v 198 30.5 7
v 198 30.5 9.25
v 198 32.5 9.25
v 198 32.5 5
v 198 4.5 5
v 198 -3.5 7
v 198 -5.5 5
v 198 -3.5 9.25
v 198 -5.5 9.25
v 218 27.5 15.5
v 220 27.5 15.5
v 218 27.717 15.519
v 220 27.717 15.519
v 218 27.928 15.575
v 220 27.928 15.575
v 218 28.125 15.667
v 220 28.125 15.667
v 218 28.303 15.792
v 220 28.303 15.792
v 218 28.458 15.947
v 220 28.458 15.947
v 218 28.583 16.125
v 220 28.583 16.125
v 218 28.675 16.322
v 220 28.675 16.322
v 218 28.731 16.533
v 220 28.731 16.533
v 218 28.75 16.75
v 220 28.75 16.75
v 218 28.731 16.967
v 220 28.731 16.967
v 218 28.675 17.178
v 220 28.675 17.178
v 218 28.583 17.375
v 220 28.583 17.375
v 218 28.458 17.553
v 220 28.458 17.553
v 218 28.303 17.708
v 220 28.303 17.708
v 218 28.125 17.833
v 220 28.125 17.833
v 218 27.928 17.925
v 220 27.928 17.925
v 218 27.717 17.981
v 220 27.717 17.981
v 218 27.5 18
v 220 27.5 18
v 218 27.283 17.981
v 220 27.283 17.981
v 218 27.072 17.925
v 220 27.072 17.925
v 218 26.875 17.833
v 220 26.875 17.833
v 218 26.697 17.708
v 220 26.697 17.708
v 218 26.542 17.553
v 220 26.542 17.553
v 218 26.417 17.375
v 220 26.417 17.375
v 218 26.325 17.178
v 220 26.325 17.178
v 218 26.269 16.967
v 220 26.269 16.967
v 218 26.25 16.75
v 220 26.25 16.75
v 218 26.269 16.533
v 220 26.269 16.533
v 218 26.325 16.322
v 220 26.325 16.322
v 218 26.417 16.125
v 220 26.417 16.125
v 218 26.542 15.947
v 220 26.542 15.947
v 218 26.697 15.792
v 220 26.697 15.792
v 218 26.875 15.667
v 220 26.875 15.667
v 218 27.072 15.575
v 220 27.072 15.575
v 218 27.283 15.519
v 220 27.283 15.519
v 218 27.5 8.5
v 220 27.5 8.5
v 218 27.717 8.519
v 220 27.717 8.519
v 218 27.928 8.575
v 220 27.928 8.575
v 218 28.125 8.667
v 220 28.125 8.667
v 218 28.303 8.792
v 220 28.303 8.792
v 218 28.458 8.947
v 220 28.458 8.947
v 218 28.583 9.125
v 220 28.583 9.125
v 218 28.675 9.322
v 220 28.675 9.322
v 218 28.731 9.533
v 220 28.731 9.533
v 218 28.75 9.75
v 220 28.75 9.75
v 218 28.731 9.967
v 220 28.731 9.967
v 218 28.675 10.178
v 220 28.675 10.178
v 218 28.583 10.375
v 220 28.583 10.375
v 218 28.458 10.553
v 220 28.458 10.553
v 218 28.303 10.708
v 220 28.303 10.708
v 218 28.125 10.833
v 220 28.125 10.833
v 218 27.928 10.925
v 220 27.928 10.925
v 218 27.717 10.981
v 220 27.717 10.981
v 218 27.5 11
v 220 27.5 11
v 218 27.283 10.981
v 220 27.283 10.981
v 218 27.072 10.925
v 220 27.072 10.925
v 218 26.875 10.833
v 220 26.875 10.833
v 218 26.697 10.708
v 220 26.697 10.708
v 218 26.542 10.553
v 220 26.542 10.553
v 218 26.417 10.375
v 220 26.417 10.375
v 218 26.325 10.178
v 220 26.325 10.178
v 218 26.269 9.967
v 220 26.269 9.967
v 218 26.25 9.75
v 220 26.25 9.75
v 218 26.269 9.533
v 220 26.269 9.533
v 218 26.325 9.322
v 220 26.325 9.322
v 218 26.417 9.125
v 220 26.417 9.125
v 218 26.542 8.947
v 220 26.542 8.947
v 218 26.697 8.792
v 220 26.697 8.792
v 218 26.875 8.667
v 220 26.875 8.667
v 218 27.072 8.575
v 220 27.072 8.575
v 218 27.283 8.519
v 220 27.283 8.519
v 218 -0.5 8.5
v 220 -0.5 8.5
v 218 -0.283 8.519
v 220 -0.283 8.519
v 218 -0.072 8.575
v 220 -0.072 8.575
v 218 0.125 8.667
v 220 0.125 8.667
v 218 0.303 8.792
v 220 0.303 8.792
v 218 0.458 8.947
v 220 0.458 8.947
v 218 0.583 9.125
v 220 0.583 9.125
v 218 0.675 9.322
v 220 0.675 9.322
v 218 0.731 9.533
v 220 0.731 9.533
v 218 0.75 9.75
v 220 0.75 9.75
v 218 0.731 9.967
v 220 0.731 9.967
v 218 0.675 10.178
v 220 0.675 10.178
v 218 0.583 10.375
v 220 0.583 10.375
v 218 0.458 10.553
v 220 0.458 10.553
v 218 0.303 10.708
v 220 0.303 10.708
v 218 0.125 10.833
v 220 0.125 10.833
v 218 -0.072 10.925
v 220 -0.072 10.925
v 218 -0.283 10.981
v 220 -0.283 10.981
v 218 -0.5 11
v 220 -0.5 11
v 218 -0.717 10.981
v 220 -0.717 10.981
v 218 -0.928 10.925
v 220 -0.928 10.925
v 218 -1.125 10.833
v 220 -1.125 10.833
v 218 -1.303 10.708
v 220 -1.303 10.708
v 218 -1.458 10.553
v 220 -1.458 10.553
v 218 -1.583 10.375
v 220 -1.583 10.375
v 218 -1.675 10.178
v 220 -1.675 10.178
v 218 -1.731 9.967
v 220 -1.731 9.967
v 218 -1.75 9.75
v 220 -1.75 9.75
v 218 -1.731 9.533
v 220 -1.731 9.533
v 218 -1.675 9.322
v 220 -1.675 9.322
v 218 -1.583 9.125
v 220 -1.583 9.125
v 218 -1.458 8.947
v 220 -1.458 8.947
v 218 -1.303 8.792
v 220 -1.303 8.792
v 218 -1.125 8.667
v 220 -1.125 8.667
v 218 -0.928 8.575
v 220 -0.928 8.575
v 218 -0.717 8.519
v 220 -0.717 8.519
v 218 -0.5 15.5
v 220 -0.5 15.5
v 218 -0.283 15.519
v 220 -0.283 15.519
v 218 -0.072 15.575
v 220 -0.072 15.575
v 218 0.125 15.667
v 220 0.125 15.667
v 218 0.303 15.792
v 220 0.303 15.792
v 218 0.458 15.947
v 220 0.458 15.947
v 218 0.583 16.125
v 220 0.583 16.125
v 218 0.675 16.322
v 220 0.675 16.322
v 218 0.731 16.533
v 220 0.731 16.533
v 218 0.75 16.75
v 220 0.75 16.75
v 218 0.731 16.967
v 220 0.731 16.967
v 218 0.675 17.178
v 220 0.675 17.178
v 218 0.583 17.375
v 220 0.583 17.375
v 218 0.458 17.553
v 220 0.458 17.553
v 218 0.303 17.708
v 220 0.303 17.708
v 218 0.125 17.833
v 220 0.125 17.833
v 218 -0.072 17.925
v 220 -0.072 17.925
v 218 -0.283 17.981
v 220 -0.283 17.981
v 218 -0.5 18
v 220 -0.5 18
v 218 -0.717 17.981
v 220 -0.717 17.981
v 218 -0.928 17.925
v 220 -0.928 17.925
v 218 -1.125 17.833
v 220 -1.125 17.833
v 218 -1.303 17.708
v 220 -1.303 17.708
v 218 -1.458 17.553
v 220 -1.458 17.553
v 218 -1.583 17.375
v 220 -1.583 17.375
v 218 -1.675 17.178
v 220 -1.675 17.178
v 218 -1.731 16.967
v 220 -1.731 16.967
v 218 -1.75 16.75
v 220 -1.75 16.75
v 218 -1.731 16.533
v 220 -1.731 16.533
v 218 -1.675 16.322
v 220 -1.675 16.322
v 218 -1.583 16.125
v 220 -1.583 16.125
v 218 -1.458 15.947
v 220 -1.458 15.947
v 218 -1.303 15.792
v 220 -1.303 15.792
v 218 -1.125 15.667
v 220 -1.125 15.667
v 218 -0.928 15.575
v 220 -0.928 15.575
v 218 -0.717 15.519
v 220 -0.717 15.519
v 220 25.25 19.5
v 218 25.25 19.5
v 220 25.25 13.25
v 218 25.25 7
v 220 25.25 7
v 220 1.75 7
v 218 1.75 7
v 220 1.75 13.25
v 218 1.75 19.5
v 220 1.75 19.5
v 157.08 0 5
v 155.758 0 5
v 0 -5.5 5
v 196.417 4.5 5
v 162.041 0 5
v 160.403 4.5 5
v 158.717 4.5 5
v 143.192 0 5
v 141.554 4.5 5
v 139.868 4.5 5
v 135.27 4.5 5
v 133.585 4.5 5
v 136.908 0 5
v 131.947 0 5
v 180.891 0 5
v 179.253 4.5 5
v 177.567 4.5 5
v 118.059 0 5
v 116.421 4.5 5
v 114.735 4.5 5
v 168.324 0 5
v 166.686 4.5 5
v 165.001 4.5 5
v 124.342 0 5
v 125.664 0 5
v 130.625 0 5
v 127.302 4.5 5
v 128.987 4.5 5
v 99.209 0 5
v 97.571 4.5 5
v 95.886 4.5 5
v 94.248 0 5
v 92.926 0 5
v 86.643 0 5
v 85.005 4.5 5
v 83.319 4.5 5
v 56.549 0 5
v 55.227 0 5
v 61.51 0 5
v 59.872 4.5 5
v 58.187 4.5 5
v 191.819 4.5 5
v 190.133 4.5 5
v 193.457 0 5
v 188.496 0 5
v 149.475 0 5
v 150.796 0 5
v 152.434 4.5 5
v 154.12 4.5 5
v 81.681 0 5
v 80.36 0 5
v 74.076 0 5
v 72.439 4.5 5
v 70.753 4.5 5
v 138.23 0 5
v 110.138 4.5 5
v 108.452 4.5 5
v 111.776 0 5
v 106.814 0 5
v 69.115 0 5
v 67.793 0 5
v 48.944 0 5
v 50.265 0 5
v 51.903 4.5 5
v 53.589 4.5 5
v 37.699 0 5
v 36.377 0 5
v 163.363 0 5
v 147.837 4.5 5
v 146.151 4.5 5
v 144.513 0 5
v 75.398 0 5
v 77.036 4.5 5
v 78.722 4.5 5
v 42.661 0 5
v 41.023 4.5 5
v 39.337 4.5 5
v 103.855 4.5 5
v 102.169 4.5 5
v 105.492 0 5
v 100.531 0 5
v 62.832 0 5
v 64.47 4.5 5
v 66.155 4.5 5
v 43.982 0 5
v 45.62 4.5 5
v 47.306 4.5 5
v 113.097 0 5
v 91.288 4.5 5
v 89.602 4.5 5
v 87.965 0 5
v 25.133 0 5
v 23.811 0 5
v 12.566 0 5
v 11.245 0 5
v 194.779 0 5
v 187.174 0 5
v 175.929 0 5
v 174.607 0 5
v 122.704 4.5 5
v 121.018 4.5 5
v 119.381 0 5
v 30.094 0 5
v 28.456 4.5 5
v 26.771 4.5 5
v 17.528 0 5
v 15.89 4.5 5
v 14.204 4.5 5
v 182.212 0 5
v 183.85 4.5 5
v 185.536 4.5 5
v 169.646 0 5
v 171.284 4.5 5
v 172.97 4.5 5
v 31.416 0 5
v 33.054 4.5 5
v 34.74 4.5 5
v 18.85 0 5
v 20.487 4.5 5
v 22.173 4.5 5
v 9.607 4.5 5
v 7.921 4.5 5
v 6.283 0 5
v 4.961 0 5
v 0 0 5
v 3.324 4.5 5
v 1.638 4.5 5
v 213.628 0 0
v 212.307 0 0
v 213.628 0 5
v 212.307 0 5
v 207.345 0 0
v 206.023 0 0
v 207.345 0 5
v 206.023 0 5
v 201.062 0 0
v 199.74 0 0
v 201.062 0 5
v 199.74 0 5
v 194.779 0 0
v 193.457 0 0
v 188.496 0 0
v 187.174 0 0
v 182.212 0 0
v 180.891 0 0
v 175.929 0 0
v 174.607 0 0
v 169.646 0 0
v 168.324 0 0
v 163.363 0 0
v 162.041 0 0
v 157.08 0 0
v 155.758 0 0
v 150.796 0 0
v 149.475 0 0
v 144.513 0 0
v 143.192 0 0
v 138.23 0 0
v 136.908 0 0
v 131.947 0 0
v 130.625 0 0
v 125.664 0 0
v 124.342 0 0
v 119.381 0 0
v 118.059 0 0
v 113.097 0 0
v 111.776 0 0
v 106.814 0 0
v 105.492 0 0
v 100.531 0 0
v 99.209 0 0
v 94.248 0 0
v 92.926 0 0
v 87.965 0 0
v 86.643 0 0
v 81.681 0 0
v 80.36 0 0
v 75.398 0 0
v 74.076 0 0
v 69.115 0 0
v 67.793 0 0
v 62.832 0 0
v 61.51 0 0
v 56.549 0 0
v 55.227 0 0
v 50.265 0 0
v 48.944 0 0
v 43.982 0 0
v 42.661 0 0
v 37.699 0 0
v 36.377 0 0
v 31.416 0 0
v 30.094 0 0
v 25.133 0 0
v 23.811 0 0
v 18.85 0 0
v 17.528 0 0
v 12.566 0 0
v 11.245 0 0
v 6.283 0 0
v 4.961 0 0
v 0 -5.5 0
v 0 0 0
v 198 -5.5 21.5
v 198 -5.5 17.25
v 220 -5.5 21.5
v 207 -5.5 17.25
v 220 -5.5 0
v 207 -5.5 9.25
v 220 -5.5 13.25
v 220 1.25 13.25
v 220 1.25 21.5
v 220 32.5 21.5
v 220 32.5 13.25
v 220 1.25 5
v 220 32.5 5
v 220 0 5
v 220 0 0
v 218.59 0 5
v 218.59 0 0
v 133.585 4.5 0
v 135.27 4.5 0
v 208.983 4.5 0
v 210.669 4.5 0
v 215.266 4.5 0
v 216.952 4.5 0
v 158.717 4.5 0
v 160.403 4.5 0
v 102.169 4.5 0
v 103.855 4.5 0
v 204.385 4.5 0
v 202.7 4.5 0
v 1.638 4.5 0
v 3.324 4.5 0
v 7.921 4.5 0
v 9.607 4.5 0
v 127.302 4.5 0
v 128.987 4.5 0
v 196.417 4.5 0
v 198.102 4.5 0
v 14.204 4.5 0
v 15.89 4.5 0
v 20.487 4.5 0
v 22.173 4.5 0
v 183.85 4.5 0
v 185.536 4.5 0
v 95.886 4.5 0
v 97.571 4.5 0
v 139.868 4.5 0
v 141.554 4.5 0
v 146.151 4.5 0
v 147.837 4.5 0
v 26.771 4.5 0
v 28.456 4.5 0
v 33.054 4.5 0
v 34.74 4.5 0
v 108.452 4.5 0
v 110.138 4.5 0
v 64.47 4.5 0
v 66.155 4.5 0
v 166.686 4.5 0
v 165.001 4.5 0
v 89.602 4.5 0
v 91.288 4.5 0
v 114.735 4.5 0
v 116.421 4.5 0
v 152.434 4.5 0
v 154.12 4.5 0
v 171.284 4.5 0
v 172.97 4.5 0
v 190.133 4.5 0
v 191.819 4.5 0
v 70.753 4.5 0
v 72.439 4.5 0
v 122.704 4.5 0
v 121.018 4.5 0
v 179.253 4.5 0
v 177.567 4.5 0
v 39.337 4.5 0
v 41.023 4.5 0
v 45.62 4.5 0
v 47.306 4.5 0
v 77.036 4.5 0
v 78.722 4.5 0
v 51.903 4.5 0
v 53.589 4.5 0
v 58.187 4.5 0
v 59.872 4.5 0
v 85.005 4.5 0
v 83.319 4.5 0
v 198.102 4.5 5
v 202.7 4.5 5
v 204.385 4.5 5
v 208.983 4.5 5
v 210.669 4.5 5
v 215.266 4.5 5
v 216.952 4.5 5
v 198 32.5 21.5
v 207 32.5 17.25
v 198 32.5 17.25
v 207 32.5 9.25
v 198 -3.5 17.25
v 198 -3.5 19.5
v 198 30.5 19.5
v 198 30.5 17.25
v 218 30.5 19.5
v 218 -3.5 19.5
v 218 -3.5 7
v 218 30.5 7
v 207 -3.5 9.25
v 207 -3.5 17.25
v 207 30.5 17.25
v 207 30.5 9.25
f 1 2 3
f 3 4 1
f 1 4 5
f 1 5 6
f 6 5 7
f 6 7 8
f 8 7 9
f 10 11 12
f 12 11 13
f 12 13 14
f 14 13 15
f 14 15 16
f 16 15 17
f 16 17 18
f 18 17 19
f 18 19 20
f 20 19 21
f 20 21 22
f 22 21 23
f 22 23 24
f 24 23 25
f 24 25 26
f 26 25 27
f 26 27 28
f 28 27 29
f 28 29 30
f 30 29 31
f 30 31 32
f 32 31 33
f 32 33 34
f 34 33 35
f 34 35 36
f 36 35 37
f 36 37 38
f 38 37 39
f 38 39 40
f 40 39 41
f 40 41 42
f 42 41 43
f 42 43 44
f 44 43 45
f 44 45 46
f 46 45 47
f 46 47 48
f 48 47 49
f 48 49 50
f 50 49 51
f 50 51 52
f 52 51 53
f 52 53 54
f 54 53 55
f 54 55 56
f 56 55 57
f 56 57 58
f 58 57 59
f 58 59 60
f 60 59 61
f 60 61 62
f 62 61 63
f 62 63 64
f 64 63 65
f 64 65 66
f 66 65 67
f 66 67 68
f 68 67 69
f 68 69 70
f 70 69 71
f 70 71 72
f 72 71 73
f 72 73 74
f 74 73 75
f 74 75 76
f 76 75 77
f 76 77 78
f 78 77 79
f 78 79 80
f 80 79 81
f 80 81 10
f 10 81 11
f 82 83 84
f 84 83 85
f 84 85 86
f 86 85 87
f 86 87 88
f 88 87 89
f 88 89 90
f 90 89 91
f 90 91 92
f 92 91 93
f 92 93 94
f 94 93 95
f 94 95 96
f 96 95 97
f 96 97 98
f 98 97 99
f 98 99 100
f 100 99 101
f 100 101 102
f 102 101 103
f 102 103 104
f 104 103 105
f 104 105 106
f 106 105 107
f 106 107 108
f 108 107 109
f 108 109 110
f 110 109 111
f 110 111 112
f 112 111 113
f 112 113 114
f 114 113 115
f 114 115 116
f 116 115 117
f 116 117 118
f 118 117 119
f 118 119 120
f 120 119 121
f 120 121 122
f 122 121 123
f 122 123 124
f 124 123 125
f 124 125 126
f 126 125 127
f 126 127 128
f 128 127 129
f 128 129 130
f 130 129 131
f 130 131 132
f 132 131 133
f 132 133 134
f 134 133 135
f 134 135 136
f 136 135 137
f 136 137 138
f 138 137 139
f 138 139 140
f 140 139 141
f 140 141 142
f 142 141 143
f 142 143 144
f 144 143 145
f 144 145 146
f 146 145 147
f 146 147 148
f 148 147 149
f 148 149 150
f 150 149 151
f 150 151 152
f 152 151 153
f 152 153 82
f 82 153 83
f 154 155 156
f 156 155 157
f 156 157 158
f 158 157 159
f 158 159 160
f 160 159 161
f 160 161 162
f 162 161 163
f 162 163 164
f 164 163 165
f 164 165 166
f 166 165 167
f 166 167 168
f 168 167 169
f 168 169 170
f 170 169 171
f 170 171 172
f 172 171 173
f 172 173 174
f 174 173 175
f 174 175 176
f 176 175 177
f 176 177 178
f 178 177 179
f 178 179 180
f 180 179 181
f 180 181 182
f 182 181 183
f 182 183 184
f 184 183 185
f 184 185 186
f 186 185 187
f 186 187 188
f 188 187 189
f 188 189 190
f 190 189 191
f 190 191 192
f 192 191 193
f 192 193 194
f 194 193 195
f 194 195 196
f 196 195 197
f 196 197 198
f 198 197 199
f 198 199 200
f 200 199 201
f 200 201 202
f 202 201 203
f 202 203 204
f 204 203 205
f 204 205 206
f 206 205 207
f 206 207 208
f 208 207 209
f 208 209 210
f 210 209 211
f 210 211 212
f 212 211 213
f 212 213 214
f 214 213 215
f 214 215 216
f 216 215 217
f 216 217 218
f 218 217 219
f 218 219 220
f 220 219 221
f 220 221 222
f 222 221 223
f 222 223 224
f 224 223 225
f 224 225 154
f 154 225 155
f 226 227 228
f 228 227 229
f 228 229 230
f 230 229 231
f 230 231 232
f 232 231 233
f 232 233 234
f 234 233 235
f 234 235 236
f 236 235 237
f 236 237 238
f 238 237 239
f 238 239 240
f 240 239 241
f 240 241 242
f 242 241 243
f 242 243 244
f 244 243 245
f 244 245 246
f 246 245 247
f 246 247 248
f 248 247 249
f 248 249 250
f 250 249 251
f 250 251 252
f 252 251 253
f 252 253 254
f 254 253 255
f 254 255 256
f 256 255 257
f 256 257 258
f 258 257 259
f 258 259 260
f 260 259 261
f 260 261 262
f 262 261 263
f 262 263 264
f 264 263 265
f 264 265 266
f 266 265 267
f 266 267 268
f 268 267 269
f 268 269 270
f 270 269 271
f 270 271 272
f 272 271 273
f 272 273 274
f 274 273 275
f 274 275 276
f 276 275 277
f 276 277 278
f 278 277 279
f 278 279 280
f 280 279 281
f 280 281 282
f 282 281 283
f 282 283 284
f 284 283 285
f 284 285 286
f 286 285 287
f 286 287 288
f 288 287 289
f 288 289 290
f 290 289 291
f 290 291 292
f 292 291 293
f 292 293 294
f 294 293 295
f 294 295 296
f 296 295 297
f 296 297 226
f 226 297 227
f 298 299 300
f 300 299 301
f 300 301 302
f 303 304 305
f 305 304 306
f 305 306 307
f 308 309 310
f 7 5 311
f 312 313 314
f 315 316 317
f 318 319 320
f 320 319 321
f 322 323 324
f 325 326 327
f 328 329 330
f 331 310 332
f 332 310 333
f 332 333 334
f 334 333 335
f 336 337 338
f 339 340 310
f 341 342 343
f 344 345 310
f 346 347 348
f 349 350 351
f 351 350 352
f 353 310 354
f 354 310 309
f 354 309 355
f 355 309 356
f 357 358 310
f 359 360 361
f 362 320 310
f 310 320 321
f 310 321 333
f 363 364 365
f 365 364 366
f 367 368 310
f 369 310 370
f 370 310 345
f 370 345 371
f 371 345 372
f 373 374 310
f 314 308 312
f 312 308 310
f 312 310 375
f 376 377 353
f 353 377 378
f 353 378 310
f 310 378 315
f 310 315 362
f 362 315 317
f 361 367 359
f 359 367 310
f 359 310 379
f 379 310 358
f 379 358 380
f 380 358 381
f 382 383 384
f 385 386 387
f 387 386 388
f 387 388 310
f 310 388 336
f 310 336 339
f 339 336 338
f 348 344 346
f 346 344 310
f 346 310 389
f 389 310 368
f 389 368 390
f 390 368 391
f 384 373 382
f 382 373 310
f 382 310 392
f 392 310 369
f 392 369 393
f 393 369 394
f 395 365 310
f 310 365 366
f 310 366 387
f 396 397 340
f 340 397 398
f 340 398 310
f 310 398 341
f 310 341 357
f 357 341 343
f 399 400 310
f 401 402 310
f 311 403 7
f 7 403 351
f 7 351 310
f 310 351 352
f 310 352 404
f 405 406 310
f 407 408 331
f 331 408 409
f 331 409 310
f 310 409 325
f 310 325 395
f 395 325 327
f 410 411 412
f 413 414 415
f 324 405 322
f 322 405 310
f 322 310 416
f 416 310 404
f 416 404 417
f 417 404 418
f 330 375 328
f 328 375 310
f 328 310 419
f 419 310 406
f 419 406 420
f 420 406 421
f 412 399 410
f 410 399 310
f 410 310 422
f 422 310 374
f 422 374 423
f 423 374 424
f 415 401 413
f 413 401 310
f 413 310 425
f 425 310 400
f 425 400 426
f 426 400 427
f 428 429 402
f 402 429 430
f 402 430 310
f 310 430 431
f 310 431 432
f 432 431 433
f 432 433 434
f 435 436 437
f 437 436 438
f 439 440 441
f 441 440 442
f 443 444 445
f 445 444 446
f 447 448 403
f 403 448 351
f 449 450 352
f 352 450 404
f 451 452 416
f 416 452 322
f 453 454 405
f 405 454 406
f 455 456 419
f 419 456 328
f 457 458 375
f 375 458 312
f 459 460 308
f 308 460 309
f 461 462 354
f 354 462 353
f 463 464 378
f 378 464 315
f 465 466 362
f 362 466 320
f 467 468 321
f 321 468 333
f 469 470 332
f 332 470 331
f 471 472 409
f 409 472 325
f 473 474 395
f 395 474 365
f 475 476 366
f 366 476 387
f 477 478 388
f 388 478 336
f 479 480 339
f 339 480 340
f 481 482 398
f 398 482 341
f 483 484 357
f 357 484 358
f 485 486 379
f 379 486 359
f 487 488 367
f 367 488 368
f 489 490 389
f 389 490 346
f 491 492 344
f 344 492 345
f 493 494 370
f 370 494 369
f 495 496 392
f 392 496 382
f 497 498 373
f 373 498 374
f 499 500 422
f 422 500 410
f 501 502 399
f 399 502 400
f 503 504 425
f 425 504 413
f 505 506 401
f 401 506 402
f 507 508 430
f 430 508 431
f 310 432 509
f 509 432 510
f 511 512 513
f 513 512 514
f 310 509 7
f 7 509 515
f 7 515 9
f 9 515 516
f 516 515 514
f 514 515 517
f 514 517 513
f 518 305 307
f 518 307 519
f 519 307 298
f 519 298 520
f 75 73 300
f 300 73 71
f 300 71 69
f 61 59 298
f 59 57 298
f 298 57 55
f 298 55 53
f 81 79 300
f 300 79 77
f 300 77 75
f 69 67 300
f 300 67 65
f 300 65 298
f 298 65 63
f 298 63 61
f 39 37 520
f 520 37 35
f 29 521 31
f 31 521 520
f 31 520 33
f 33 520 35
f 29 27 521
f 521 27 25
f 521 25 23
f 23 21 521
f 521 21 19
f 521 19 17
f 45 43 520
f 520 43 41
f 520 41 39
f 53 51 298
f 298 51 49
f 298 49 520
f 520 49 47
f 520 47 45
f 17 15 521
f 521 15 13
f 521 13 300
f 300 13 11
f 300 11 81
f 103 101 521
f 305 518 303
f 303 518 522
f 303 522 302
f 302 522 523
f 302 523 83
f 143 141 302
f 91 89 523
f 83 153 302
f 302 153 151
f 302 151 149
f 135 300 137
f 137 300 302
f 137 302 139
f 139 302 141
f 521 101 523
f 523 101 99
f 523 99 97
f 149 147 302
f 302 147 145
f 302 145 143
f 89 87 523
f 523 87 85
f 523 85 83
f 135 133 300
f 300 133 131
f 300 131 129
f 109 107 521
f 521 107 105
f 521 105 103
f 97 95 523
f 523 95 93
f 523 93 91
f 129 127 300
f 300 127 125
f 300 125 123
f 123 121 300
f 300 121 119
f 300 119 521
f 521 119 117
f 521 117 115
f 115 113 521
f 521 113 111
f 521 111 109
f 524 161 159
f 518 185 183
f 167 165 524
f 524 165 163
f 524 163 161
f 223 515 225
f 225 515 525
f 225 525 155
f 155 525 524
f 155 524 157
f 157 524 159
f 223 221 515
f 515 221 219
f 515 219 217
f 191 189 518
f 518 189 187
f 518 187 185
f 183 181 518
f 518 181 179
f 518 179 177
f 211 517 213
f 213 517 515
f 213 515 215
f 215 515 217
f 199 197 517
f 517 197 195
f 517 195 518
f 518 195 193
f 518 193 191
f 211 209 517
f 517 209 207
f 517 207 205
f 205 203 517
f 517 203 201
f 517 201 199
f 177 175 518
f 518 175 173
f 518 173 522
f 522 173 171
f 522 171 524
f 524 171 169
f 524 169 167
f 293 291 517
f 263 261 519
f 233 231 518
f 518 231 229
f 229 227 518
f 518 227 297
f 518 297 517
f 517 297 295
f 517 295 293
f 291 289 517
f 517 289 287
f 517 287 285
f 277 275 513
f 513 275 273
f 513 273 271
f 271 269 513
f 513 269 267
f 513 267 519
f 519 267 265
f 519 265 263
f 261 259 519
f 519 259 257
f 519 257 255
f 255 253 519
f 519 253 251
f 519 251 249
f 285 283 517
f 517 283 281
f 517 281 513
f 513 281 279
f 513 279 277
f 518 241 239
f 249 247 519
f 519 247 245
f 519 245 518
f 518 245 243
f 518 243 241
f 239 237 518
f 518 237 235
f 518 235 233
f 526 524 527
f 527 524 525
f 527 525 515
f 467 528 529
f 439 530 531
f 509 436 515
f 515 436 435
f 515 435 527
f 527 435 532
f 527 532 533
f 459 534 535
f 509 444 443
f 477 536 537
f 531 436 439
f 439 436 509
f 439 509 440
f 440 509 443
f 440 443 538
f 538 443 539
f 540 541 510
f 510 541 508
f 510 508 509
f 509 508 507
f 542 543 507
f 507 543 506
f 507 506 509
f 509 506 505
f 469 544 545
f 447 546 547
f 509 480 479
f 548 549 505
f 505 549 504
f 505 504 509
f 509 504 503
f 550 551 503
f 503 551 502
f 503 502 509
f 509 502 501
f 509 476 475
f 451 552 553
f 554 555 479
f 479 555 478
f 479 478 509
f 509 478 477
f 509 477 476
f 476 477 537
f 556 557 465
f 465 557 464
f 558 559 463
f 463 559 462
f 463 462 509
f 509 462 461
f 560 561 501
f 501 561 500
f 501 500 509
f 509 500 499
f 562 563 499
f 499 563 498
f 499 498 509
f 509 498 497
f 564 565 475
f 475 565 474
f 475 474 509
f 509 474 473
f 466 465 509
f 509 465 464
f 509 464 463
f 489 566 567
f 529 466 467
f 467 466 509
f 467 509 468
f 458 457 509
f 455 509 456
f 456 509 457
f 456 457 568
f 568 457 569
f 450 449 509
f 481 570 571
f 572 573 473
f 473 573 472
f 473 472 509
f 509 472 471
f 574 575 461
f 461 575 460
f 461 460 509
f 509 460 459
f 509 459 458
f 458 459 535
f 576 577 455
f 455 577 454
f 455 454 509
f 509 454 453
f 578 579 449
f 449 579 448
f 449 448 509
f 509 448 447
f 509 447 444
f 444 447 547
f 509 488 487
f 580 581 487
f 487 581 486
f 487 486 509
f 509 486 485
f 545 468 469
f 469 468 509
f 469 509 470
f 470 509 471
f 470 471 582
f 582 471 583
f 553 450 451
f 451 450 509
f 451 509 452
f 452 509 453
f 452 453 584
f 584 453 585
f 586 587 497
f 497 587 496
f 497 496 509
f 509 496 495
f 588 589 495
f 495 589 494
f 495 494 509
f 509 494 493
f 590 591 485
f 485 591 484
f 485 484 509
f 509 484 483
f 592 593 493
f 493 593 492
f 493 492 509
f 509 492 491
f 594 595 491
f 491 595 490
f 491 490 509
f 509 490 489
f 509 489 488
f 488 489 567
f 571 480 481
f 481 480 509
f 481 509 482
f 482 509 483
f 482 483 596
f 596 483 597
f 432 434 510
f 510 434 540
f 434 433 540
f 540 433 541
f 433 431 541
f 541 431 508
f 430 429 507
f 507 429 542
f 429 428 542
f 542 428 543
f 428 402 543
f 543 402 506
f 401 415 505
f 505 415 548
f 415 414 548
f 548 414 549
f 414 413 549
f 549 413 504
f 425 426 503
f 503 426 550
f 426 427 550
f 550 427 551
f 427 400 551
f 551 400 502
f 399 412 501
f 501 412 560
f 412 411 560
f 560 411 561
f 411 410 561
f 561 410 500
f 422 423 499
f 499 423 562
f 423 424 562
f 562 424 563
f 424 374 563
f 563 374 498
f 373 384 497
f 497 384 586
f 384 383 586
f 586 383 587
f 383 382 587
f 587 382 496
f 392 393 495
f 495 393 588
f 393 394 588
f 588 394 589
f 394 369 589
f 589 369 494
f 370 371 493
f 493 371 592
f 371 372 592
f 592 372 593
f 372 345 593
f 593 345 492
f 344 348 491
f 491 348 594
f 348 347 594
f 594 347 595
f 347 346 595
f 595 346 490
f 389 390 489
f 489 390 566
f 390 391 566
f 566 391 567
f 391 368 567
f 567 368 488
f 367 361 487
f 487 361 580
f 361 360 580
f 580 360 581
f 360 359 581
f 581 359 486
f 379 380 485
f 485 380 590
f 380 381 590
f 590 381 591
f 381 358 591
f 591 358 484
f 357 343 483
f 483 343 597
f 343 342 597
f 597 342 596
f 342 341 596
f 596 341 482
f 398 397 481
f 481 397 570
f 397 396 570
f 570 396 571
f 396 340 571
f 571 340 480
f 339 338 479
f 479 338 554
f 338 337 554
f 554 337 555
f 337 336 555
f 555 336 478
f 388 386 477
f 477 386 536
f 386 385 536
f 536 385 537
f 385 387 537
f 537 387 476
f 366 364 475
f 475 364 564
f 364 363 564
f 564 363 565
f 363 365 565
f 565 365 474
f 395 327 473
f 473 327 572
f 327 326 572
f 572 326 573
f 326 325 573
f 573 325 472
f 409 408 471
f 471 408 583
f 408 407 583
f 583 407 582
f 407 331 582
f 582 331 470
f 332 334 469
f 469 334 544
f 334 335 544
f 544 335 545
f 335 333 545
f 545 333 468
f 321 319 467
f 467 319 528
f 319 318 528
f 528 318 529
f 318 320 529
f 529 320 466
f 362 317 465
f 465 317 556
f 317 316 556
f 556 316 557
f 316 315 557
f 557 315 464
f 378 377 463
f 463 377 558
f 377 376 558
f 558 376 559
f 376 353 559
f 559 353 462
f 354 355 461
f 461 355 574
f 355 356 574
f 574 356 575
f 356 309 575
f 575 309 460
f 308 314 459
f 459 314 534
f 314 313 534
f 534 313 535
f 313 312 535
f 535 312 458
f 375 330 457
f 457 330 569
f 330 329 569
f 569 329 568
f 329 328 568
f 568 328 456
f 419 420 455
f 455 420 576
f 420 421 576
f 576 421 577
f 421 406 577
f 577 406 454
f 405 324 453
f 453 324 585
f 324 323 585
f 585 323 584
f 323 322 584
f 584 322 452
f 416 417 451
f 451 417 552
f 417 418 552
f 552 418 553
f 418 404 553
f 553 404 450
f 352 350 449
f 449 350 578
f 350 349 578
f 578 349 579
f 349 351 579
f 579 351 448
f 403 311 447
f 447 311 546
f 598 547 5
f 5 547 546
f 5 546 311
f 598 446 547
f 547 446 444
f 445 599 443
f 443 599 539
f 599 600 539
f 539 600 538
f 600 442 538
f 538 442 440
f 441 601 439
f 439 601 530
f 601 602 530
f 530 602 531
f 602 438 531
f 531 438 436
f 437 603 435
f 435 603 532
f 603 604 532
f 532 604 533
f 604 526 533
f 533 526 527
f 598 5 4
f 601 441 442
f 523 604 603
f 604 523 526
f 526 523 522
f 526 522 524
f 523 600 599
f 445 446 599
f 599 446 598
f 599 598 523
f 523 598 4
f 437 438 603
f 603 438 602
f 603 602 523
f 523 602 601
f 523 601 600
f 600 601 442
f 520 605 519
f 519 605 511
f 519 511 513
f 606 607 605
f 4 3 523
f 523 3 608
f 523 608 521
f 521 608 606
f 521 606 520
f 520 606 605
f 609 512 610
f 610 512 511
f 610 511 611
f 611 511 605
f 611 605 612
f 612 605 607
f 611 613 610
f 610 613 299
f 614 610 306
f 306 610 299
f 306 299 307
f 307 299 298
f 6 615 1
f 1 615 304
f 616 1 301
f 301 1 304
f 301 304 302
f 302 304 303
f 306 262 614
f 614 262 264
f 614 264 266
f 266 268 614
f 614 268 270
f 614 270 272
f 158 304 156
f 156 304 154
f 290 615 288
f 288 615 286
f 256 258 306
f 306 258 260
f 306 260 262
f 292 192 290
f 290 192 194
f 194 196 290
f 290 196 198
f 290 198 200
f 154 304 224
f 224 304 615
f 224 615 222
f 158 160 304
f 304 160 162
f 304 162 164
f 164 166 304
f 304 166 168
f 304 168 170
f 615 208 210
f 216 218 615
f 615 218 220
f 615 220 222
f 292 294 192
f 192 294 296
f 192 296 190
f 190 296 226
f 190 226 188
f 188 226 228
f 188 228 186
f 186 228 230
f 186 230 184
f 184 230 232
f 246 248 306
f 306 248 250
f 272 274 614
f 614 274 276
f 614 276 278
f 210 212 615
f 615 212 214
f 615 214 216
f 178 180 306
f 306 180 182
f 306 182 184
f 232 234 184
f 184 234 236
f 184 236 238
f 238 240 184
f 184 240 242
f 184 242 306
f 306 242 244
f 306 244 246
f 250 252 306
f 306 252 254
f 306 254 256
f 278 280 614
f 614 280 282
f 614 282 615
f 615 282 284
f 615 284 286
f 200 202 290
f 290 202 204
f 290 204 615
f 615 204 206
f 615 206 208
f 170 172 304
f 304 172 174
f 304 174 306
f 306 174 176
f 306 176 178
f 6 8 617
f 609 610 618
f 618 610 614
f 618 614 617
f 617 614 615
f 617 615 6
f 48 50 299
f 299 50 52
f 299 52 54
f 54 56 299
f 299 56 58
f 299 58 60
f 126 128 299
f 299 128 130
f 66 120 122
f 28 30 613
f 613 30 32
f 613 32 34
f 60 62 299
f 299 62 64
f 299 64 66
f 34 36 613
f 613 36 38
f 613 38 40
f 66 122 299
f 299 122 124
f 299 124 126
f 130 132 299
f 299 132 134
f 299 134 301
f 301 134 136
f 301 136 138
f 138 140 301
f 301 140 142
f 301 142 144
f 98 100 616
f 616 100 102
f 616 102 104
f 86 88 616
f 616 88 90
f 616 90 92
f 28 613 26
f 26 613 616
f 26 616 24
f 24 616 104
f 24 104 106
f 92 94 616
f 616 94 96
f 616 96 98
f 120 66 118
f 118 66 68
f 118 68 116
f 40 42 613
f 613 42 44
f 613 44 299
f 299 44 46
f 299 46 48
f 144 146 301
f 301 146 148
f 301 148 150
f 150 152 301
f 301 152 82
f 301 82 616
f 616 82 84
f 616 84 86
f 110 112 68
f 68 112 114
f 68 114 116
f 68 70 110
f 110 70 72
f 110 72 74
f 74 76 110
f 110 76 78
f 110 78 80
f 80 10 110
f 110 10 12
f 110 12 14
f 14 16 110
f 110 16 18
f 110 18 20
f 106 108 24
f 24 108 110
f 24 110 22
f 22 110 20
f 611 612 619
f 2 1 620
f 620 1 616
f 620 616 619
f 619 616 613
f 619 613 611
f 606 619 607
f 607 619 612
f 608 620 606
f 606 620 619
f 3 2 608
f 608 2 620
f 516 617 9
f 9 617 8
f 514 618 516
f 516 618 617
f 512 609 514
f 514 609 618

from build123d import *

# Parameters (mm, degrees)
SKETCH_1_W             = 220
SKETCH_1_H             = 5.5
EXTRUDE_1_DEPTH        = 5
EXTRUDE_2_DEPTH        = 5
PATTERN_LINEAR_1_COUNT = 35
PATTERN_LINEAR_1_PITCH = 6.283185307
SKETCH_4_W             = 16.5
SKETCH_4_H             = 38
SKETCH_4_R             = 1.25
SKETCH_4_W_2           = 12.5
SKETCH_4_H_2           = 23.5
EXTRUDE_1_2_DEPTH      = 22
SKETCH_5_W             = 12.5
SKETCH_5_H             = 34
CUT_EXTRUDE_1_DEPTH    = 20
SKETCH_6_W             = 9
SKETCH_6_H             = 8
CUT_EXTRUDE_2_DEPTH    = 225.290548174


with BuildPart() as part:
    # 草图1 → Extrude 1 (new body)
    with BuildSketch(Plane.XY):
        with Locations((110, -2.75)):
            Rectangle(SKETCH_1_W, SKETCH_1_H)
    extrude(amount=EXTRUDE_1_DEPTH)

    # 草图2 → 拉伸2 (add)
    with BuildSketch(Plane.XY.offset(5)):
        Polygon((0, 0), (1.637866054, 4.5), (3.323577771, 4.5), (4.961443825, 0), align=None)
    extrude_2 = extrude(amount=-EXTRUDE_2_DEPTH)

    # 阵列(线性)1: 拉伸2 ×35
    with Locations(*[(i * PATTERN_LINEAR_1_PITCH, 0, 0) for i in range(1, PATTERN_LINEAR_1_COUNT)]):
        add(extrude_2)

    # 草图4 → Extrude 1 2 (add)
    with BuildSketch(Plane(origin=(220, 0, 0), x_dir=(0, 0, -1), z_dir=(1, 0, 0))):
        with Locations((-13.25, 13.5)):
            Rectangle(SKETCH_4_W, SKETCH_4_H)
        with Locations((-16.75, 27.5)):
            Circle(SKETCH_4_R, mode=Mode.SUBTRACT)
        with Locations(Location((-9.75, 27.5, 0), (0, 0, 180))):
            Circle(SKETCH_4_R, mode=Mode.SUBTRACT)
        with Locations((-9.75, -0.5)):
            Circle(SKETCH_4_R, mode=Mode.SUBTRACT)
        with Locations(Location((-16.75, -0.5, 0), (0, 0, 180))):
            Circle(SKETCH_4_R, mode=Mode.SUBTRACT)
        with Locations((-13.25, 13.5)):
            Rectangle(SKETCH_4_W_2, SKETCH_4_H_2, mode=Mode.SUBTRACT)
    extrude(amount=-EXTRUDE_1_2_DEPTH)

    # 草图5 → 切除-拉伸1 (cut)
    with BuildSketch(Plane.ZY.offset(-198)):
        with Locations((13.25, 13.5)):
            Rectangle(SKETCH_5_W, SKETCH_5_H)
    extrude(amount=-CUT_EXTRUDE_1_DEPTH, mode=Mode.SUBTRACT)

    # 草图6 → 切除-拉伸2 (cut, through all)
    with BuildSketch(Plane(origin=(0, 32.5, 0), x_dir=(1, 0, 0), z_dir=(0, 1, 0))):
        with Locations((202.5, -13.25)):
            Rectangle(SKETCH_6_W, SKETCH_6_H)
    extrude(amount=-CUT_EXTRUDE_2_DEPTH, mode=Mode.SUBTRACT)


solid = part.part
